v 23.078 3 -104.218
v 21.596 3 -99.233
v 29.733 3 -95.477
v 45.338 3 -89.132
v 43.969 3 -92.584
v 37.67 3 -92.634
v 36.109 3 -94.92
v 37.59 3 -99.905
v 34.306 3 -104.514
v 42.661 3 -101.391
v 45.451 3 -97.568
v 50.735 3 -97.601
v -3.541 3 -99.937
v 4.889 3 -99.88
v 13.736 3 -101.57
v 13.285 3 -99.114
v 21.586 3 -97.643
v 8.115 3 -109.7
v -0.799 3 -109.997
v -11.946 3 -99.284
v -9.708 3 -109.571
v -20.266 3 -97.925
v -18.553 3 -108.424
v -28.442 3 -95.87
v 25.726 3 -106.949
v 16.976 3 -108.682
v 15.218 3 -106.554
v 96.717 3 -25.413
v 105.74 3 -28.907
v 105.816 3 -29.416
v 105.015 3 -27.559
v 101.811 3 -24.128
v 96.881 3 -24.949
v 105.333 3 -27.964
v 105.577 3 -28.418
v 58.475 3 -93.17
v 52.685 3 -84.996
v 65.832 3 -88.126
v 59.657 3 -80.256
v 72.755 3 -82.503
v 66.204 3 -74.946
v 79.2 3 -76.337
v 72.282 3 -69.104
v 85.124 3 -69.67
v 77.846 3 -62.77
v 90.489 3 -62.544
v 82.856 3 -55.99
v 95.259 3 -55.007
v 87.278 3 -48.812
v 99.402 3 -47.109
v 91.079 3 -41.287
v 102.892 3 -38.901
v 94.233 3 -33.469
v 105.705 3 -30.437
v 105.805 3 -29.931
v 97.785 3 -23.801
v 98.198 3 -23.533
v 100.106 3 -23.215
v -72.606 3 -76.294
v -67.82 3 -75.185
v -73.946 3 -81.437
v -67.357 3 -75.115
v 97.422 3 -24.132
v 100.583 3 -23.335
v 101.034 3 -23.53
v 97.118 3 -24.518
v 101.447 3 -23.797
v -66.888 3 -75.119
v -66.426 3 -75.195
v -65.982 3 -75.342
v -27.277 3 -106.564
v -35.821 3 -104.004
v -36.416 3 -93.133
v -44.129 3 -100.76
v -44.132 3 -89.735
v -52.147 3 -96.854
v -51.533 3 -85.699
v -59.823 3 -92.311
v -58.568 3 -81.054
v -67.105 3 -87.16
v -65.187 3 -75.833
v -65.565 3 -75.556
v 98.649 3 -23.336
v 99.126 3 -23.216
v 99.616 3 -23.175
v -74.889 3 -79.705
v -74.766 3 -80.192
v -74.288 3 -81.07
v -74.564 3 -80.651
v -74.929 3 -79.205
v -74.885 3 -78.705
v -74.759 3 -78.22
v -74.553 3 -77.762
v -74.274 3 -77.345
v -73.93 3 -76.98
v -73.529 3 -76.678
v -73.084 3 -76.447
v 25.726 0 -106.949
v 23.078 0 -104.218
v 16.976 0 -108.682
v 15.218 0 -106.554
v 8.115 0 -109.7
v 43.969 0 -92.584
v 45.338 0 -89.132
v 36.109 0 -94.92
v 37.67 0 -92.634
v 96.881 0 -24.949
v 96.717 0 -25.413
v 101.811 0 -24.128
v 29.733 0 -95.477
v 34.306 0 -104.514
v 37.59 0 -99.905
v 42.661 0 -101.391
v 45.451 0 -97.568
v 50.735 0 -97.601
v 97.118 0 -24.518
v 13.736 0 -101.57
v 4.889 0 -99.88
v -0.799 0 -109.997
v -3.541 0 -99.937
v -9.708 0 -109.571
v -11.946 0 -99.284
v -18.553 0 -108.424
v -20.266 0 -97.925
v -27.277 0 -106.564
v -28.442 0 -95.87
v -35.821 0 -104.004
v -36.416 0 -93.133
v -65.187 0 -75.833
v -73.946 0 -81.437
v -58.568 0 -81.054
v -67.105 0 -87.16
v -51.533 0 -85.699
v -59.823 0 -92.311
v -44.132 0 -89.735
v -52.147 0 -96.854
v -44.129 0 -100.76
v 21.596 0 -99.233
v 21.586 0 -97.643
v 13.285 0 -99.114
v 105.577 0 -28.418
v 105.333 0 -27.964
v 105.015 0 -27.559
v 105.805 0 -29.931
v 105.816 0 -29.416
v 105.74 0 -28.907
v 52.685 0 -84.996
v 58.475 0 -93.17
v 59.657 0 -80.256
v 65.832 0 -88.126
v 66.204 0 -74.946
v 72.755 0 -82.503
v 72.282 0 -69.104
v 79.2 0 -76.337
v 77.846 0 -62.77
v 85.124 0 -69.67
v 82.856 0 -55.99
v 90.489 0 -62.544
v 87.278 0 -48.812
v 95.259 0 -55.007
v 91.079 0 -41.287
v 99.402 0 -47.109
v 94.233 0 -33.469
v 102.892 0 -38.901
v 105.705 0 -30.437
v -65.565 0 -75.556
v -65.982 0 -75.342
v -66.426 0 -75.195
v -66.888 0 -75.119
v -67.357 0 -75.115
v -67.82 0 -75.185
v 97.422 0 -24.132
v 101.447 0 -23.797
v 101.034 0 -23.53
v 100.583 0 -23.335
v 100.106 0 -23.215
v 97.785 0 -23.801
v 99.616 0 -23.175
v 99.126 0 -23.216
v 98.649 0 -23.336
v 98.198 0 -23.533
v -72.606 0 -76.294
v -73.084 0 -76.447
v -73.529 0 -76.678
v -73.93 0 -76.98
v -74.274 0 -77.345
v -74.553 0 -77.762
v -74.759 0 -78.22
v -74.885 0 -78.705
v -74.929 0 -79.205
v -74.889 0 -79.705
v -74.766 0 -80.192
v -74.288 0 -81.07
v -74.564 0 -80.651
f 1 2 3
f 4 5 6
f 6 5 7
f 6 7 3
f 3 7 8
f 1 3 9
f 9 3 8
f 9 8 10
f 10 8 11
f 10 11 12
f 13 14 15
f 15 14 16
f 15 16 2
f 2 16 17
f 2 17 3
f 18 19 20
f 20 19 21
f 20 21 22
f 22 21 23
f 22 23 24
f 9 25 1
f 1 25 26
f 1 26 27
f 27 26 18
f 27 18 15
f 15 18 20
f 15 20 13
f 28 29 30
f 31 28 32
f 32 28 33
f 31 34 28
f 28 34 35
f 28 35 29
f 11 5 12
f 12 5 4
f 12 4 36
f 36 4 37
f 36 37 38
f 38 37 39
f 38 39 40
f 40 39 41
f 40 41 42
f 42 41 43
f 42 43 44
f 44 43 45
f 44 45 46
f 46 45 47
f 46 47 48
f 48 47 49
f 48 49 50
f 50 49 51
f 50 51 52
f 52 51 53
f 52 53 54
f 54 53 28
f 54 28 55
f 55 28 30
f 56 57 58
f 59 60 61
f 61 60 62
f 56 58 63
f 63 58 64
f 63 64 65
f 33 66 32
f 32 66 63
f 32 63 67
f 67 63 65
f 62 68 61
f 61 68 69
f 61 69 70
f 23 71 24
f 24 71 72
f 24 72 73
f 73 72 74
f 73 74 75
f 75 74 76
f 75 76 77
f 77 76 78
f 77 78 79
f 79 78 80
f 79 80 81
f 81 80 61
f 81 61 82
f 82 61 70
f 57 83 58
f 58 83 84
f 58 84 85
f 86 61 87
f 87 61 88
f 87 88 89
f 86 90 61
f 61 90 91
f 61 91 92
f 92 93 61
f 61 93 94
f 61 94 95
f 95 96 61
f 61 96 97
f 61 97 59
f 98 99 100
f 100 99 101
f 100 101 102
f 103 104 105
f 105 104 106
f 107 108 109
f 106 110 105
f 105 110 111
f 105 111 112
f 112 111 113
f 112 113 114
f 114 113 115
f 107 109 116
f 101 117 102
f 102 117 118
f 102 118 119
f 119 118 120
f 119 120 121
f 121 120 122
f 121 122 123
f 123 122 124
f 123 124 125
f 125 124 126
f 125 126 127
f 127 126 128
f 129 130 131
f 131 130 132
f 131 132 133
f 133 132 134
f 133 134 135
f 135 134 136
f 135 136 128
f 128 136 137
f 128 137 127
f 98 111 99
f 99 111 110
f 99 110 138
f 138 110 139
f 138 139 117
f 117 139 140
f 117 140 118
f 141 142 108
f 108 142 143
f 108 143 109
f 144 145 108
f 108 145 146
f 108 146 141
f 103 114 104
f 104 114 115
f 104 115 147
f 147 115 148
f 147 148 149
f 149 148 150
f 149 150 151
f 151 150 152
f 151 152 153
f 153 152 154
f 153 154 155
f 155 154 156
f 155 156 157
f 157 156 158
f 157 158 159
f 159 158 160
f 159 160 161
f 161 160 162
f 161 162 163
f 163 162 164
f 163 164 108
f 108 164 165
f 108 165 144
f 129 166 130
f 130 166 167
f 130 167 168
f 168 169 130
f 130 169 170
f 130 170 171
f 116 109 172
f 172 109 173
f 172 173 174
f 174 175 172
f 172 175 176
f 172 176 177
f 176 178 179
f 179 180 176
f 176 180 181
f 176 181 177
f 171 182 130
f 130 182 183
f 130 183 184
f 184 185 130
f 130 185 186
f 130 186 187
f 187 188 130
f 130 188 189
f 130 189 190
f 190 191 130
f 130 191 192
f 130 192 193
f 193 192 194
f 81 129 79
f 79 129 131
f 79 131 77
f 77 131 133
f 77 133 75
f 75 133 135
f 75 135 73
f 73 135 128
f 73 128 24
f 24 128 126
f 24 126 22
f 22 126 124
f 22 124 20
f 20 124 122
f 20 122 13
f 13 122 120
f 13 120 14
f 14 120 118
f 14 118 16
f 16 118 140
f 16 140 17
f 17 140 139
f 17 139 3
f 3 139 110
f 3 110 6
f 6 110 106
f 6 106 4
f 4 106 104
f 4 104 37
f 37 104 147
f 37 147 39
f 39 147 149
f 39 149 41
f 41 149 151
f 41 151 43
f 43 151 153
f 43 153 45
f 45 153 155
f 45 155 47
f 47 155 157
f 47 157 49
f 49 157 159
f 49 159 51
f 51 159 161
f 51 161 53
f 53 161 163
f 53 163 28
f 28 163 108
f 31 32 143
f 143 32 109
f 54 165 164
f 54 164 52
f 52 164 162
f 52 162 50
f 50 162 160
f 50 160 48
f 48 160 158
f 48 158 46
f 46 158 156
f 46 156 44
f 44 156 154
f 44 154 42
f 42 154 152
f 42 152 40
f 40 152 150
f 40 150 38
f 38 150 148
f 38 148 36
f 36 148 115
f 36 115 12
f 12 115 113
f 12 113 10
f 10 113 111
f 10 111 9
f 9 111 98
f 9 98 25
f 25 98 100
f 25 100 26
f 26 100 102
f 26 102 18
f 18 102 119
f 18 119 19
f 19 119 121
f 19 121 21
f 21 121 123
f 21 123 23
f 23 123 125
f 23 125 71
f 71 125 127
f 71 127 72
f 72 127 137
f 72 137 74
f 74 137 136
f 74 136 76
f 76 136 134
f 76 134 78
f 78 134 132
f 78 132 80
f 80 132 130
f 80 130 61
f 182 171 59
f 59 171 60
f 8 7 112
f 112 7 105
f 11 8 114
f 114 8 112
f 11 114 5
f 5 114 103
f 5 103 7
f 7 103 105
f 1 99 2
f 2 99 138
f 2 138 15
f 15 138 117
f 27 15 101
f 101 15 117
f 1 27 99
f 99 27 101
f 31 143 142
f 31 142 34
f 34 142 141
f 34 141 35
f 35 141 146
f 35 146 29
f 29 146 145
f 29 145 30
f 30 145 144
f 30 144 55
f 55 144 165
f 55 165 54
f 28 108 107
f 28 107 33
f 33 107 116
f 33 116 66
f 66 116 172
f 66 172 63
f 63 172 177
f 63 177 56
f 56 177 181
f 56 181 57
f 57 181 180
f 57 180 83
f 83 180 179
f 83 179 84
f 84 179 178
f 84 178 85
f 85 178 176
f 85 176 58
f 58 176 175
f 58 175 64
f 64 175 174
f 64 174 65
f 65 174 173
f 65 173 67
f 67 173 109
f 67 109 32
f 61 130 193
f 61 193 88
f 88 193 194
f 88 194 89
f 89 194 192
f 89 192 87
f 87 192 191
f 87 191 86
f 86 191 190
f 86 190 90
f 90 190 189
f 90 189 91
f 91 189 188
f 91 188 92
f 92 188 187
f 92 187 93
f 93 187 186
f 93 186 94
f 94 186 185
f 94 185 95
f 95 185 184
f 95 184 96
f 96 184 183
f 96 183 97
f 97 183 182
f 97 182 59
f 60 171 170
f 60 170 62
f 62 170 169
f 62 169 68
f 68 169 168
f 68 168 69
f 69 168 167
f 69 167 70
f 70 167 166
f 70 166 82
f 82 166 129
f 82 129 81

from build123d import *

# Parameters (mm, degrees)
EXTRUDE_1_DEPTH     = 3
CUT_EXTRUDE_3_DEPTH = 5
FILLET_5_R          = 3


with BuildPart() as part:
    # Эскиз2 → Бобышка-Вытянуть1 (new body)
    with BuildSketch(Plane(origin=(0, 0, 0), x_dir=(1, 0, 0), z_dir=(0, 1, 0))):
        with BuildLine():
            Line((97.975465344, 20.020194571), (106.165355323, 28.790924422))
            ThreePointArc((106.165355323, 28.790924422), (28.149005714, 106.337356923), (-78.01634961, 77.546432501))
            Line((-78.01634961, 77.546432501), (-66.325729759, 74.83914465))
            ThreePointArc((-66.325729759, 74.83914465), (31.649735585, 94.859339221), (97.975465344, 20.020194571))
        make_face()
    extrude(amount=EXTRUDE_1_DEPTH)

    # Эскиз3 → Вырез-Вытянуть3 (cut)
    with BuildSketch(Plane(origin=(0, 3, 0), x_dir=(1, 0, 0), z_dir=(0, 1, 0))):
        Polygon((36.108993933, 94.920117092), (43.969168032, 92.583952898), (45.450638009, 97.568453546), (37.59046391, 99.90461774), align=None)
        Polygon((13.736254487, 101.569638102), (21.596428586, 99.233473909), (23.077898562, 104.217974556), (15.217724464, 106.55413875), align=None)
    extrude(amount=-CUT_EXTRUDE_3_DEPTH, mode=Mode.SUBTRACT)

    # Скругление5
    fillet_5_edges = [part.edges().sort_by_distance(p)[0] for p in [
        (-66.325729759, 1.5, -74.83914465),
        (-78.01634961, 1.5, -77.546432501),
        (106.165355323, 1.5, -28.790924422),
        (97.975465344, 1.5, -20.020194571),
    ]]
    fillet(fillet_5_edges, radius=FILLET_5_R)


solid = part.part
